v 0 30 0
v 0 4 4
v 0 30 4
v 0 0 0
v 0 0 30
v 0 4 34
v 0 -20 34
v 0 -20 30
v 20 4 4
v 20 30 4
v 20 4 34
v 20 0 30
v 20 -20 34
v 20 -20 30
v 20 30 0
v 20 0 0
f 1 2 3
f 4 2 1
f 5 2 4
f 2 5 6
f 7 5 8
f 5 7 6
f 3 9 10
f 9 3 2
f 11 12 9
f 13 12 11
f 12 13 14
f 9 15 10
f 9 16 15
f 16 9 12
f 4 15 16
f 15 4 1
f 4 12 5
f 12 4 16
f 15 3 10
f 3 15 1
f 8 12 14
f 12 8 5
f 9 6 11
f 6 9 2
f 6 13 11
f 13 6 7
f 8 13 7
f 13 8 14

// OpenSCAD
Battery();

module Battery(width=30, heigth=30){
    
    // Main
    color("red")
    translate([0,0,0])
    cube([20,width,4]);
    
    // Left
    color("blue")
    translate([0,0,0])
    cube([20,4,heigth]);
    translate([0,-20,heigth])
    cube([20,24,4]);
}
